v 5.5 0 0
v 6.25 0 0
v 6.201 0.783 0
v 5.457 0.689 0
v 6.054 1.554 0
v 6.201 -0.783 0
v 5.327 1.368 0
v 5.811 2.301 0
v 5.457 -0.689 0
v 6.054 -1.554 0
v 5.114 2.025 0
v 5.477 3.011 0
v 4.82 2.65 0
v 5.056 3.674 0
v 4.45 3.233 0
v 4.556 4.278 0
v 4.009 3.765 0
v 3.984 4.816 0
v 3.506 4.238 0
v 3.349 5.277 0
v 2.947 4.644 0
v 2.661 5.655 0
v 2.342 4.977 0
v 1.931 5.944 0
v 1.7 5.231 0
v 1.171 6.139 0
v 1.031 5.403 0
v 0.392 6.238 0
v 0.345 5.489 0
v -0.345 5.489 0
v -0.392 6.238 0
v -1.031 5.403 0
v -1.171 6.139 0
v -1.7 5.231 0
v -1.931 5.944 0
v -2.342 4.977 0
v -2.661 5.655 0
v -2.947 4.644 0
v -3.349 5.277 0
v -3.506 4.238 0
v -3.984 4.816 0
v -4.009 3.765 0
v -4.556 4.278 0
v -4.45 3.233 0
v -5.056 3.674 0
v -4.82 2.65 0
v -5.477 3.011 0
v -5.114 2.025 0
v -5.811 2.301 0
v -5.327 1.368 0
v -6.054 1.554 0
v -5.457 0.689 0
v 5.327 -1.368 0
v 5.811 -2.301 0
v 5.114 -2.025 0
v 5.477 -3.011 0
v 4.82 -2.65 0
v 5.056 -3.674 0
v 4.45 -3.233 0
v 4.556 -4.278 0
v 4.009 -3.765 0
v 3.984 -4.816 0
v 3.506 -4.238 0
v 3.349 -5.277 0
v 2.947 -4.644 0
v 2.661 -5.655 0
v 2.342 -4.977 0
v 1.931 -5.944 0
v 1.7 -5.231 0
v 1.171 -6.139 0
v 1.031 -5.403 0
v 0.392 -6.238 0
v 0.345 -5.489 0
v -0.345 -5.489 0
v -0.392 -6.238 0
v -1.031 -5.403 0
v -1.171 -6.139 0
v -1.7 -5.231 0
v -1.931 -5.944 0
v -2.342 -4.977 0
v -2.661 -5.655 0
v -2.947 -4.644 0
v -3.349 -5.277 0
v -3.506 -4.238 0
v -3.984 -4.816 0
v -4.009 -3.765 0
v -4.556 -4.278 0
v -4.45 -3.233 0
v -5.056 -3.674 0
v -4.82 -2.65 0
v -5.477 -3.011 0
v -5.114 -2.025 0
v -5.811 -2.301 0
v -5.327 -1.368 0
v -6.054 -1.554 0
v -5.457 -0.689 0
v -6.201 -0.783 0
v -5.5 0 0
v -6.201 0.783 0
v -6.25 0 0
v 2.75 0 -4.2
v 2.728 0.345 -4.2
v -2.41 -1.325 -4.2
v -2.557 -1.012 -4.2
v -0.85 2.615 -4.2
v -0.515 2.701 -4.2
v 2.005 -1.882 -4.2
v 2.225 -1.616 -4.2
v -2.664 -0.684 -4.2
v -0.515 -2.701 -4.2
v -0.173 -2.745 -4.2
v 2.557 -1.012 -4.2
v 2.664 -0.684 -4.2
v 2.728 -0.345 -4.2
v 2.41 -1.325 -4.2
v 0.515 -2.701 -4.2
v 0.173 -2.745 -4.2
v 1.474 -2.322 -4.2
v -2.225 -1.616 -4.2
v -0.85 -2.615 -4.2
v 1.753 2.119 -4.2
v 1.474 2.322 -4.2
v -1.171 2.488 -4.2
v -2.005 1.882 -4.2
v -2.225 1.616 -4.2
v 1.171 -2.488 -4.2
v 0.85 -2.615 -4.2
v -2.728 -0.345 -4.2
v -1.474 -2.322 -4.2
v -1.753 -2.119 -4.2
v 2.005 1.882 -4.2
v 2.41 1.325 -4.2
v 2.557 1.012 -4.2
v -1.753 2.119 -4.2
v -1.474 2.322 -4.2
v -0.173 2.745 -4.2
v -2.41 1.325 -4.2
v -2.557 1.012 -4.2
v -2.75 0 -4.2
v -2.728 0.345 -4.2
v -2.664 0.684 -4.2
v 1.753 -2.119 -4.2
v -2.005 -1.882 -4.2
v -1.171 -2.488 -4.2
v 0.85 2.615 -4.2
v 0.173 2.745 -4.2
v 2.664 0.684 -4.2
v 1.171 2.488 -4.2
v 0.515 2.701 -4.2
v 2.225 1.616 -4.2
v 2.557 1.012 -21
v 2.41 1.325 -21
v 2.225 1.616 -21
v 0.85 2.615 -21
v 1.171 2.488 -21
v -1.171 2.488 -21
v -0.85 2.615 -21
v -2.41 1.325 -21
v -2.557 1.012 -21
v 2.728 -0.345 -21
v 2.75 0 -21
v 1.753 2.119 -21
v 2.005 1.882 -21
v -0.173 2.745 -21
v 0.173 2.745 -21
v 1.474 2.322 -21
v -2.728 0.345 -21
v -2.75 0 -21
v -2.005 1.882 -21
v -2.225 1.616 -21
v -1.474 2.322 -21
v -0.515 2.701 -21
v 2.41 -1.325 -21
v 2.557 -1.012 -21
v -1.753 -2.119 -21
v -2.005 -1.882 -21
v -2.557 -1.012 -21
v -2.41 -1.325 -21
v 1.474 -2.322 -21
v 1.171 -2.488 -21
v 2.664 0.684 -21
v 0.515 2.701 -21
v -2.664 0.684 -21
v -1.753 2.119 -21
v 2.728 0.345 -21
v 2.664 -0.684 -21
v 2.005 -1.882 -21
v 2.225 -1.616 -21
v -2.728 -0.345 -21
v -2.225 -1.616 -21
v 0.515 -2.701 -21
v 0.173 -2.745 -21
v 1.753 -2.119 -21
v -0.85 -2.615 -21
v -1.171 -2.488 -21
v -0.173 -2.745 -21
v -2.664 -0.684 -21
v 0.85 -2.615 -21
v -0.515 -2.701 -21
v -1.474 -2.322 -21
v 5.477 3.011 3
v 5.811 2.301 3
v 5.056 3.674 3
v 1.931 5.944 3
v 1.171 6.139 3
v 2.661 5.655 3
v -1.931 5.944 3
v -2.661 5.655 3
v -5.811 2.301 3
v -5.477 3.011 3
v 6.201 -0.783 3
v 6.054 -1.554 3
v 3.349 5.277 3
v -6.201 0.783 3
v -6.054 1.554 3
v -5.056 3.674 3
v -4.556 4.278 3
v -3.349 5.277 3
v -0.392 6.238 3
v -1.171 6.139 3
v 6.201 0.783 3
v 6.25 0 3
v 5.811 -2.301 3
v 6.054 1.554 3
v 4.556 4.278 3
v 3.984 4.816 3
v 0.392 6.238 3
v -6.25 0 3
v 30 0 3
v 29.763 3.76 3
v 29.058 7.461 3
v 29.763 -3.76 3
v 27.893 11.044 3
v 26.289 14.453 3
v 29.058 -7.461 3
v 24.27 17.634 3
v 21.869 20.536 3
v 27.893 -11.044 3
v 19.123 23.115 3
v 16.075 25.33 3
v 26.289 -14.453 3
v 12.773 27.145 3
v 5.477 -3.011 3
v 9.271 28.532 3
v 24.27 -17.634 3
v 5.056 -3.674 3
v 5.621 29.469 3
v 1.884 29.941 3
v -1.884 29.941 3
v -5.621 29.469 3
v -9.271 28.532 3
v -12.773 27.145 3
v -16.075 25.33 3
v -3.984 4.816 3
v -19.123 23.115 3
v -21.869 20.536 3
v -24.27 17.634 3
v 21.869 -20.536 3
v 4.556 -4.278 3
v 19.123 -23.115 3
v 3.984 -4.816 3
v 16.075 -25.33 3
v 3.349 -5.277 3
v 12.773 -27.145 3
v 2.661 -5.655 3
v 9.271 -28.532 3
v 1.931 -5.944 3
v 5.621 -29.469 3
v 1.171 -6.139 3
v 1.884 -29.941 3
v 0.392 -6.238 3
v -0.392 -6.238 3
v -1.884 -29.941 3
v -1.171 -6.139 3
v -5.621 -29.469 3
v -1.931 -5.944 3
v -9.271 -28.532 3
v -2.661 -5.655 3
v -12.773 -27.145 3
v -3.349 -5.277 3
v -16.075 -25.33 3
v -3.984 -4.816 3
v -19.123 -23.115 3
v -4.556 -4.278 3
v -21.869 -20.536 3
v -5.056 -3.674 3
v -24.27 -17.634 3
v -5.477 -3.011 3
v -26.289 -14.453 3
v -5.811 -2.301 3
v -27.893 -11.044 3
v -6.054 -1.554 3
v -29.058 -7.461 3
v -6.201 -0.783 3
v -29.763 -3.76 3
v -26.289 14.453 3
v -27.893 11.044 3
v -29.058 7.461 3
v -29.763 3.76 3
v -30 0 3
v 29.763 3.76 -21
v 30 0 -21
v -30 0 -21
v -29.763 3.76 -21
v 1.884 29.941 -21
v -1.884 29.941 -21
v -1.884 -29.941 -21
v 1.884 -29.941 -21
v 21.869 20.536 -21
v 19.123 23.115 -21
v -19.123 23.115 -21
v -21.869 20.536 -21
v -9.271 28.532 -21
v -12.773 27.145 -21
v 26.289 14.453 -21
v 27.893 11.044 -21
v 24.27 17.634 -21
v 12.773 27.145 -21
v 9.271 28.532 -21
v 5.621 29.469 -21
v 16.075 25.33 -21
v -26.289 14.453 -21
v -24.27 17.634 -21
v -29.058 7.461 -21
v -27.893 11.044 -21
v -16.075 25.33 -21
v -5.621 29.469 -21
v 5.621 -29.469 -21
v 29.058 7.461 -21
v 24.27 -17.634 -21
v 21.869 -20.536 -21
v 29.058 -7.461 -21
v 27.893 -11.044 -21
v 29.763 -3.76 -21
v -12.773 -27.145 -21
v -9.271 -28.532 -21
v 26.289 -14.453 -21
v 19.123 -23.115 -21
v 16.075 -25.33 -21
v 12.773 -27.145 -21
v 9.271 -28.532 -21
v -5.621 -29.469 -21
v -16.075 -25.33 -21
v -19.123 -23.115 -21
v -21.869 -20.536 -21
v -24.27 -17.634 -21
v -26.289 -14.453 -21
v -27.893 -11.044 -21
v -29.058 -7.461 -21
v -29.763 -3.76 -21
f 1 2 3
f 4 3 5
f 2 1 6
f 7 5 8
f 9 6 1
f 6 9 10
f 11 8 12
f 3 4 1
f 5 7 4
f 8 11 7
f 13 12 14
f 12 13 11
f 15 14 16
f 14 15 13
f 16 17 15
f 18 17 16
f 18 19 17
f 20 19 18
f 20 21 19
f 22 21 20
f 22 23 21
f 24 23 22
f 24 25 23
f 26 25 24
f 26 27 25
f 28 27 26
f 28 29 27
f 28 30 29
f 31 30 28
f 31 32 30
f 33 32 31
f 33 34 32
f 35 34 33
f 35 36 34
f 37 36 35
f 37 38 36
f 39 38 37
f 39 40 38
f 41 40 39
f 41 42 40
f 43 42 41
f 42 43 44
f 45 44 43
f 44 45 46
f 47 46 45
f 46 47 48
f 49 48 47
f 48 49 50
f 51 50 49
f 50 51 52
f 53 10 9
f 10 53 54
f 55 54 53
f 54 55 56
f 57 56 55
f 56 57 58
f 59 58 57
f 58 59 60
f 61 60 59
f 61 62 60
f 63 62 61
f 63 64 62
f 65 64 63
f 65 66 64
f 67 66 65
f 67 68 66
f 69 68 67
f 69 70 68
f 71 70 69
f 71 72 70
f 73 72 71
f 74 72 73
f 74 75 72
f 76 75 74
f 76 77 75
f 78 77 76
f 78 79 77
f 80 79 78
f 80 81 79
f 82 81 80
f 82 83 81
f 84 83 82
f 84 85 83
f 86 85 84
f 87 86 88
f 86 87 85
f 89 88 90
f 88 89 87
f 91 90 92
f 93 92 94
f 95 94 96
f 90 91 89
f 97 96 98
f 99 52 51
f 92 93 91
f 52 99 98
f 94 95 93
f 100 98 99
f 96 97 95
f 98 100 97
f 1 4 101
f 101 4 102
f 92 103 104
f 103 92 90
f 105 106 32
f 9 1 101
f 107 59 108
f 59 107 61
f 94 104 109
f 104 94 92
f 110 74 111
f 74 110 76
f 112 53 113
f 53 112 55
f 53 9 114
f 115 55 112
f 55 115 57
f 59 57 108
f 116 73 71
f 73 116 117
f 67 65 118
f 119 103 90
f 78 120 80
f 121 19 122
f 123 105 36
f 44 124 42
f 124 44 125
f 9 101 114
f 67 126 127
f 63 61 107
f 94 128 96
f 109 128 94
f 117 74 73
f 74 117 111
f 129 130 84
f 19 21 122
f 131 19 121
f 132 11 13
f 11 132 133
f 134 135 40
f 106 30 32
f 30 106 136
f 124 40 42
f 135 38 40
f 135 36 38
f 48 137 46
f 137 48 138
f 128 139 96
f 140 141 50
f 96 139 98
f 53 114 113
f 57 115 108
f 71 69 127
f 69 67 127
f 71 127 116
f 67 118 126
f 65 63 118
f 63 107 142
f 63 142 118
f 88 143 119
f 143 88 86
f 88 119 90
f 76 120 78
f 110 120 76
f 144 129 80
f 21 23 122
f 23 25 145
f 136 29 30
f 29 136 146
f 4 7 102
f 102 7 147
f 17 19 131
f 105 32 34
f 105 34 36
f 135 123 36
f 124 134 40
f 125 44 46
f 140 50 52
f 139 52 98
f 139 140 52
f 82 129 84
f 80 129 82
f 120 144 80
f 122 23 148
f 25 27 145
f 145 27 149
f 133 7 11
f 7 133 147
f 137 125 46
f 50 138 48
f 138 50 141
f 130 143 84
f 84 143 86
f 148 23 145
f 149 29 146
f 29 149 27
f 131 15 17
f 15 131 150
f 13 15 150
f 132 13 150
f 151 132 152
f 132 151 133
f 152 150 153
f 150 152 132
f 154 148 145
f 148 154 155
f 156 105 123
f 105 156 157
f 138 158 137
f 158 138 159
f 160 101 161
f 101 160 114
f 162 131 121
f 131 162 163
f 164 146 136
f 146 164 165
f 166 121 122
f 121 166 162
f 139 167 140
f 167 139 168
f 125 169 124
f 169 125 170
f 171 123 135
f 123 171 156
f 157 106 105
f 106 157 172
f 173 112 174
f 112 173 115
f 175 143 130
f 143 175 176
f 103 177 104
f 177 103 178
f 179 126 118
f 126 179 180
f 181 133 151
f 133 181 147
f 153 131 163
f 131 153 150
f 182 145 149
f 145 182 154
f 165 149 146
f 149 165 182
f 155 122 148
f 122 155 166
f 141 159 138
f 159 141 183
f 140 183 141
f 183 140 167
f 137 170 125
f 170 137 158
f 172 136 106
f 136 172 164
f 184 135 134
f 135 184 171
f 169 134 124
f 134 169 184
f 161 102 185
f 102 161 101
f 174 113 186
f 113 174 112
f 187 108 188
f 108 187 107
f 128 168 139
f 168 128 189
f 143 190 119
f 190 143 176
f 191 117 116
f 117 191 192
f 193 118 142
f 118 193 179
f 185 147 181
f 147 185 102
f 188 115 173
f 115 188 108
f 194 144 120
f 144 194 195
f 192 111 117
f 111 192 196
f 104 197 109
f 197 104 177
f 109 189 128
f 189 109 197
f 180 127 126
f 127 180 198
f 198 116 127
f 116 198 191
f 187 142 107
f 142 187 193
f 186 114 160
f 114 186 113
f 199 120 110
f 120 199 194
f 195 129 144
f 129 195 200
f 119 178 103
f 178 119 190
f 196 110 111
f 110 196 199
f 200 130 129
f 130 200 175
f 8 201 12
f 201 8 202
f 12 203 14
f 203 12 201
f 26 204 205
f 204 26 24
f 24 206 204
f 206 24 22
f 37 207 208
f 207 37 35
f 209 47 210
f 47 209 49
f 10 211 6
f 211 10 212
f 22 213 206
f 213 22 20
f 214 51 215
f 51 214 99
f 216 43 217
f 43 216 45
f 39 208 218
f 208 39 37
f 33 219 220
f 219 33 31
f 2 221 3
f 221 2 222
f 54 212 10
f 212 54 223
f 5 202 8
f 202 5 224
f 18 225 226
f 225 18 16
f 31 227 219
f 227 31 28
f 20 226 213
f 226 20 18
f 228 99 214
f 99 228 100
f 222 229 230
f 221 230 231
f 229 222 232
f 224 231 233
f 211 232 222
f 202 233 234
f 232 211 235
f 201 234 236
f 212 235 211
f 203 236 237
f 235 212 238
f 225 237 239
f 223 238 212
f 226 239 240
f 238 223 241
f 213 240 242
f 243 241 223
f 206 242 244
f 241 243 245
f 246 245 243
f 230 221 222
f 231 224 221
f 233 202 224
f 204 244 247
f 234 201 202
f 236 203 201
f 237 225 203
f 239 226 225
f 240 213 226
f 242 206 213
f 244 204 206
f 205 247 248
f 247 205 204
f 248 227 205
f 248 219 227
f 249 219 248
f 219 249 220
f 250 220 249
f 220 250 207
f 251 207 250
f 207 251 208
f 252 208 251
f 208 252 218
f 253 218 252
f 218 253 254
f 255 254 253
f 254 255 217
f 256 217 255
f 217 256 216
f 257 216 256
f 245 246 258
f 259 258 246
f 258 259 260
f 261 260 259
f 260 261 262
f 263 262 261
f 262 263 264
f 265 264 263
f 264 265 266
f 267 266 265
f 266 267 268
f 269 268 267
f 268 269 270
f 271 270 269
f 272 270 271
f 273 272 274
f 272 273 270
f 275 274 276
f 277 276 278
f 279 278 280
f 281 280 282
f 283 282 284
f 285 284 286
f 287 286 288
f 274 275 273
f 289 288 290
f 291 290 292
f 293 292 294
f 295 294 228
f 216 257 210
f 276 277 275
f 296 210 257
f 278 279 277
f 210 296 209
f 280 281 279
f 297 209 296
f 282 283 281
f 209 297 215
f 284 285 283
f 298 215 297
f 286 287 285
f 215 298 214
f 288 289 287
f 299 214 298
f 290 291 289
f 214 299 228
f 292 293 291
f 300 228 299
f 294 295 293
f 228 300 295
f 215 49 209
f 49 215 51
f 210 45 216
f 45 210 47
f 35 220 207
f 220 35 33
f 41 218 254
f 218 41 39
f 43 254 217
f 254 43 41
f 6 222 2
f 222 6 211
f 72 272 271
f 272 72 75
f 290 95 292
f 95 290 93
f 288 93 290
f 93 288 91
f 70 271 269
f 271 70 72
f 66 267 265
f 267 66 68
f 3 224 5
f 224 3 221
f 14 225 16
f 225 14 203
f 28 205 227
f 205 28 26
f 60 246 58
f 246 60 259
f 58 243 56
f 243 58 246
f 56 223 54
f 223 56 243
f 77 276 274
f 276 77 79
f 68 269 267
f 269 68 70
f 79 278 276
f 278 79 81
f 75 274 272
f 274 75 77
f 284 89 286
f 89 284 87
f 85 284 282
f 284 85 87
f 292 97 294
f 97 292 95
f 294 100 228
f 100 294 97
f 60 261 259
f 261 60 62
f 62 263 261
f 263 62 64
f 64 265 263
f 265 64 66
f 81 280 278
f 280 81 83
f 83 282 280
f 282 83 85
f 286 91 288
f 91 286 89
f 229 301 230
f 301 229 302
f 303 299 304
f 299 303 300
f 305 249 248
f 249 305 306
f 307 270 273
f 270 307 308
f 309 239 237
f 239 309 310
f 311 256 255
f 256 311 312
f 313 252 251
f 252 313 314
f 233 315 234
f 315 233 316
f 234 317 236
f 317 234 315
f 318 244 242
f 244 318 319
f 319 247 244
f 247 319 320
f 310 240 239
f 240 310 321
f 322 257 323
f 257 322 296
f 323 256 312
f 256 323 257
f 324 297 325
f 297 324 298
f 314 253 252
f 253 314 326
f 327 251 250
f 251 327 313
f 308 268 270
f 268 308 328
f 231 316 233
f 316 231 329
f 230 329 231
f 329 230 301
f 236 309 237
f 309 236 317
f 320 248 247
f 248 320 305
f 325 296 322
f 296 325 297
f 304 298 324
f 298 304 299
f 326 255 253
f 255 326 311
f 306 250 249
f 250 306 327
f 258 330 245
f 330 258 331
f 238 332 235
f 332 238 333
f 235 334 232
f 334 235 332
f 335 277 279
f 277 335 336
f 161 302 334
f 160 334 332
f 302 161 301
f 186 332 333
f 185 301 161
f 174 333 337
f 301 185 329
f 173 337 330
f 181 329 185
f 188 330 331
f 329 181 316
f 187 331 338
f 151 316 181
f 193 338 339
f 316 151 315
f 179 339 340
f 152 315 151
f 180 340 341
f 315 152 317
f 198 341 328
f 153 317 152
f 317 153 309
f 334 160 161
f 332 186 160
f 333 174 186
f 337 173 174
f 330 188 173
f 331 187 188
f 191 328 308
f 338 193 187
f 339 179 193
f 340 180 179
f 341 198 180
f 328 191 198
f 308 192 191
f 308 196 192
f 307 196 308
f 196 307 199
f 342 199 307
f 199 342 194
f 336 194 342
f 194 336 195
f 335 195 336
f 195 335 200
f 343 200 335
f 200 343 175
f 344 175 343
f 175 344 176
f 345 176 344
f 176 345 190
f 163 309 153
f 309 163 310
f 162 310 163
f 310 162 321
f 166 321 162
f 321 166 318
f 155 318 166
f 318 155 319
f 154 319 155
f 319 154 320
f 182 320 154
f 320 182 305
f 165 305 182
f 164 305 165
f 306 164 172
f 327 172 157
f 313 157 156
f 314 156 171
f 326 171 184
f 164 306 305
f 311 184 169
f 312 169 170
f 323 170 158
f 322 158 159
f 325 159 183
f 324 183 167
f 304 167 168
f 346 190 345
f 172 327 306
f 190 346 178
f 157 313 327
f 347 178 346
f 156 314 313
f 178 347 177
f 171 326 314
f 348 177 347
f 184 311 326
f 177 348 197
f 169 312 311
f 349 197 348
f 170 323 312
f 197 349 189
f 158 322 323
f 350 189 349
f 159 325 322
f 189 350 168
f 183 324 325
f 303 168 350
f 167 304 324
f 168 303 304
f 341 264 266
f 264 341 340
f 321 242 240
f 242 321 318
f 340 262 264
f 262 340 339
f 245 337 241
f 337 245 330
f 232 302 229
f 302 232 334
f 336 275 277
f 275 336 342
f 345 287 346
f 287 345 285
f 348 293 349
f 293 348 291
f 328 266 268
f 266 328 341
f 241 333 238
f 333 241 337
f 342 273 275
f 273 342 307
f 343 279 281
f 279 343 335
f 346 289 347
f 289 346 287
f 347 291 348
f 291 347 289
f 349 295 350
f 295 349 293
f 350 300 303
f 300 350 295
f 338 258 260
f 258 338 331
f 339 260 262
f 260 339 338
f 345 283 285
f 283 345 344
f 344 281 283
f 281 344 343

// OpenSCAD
$fn = 50;

difference() {
	union() {
		translate(v = [0, 0, -21.0]) {
			cylinder(h = 24, r = 30.0);
		}
	}
	union() {
		translate(v = [0, 0, 0]) {
			rotate(a = [0, 0, 0]) {
				difference() {
					union() {
						translate(v = [0, 0, -24.0]) {
							cylinder(h = 24, r = 2.25);
						}
						translate(v = [0, 0, -4.2]) {
							cylinder(h = 4.2, r1 = 2.75, r2 = 5.5);
						}
						translate(v = [0, 0, -24.0]) {
							cylinder(h = 24, r = 2.75);
						}
						translate(v = [0, 0, -24.0]) {
							cylinder(h = 24, r = 2.25);
						}
					}
					union();
				}
			}
		}
		#cylinder(h = 3, r = 6.25);
	}
}
